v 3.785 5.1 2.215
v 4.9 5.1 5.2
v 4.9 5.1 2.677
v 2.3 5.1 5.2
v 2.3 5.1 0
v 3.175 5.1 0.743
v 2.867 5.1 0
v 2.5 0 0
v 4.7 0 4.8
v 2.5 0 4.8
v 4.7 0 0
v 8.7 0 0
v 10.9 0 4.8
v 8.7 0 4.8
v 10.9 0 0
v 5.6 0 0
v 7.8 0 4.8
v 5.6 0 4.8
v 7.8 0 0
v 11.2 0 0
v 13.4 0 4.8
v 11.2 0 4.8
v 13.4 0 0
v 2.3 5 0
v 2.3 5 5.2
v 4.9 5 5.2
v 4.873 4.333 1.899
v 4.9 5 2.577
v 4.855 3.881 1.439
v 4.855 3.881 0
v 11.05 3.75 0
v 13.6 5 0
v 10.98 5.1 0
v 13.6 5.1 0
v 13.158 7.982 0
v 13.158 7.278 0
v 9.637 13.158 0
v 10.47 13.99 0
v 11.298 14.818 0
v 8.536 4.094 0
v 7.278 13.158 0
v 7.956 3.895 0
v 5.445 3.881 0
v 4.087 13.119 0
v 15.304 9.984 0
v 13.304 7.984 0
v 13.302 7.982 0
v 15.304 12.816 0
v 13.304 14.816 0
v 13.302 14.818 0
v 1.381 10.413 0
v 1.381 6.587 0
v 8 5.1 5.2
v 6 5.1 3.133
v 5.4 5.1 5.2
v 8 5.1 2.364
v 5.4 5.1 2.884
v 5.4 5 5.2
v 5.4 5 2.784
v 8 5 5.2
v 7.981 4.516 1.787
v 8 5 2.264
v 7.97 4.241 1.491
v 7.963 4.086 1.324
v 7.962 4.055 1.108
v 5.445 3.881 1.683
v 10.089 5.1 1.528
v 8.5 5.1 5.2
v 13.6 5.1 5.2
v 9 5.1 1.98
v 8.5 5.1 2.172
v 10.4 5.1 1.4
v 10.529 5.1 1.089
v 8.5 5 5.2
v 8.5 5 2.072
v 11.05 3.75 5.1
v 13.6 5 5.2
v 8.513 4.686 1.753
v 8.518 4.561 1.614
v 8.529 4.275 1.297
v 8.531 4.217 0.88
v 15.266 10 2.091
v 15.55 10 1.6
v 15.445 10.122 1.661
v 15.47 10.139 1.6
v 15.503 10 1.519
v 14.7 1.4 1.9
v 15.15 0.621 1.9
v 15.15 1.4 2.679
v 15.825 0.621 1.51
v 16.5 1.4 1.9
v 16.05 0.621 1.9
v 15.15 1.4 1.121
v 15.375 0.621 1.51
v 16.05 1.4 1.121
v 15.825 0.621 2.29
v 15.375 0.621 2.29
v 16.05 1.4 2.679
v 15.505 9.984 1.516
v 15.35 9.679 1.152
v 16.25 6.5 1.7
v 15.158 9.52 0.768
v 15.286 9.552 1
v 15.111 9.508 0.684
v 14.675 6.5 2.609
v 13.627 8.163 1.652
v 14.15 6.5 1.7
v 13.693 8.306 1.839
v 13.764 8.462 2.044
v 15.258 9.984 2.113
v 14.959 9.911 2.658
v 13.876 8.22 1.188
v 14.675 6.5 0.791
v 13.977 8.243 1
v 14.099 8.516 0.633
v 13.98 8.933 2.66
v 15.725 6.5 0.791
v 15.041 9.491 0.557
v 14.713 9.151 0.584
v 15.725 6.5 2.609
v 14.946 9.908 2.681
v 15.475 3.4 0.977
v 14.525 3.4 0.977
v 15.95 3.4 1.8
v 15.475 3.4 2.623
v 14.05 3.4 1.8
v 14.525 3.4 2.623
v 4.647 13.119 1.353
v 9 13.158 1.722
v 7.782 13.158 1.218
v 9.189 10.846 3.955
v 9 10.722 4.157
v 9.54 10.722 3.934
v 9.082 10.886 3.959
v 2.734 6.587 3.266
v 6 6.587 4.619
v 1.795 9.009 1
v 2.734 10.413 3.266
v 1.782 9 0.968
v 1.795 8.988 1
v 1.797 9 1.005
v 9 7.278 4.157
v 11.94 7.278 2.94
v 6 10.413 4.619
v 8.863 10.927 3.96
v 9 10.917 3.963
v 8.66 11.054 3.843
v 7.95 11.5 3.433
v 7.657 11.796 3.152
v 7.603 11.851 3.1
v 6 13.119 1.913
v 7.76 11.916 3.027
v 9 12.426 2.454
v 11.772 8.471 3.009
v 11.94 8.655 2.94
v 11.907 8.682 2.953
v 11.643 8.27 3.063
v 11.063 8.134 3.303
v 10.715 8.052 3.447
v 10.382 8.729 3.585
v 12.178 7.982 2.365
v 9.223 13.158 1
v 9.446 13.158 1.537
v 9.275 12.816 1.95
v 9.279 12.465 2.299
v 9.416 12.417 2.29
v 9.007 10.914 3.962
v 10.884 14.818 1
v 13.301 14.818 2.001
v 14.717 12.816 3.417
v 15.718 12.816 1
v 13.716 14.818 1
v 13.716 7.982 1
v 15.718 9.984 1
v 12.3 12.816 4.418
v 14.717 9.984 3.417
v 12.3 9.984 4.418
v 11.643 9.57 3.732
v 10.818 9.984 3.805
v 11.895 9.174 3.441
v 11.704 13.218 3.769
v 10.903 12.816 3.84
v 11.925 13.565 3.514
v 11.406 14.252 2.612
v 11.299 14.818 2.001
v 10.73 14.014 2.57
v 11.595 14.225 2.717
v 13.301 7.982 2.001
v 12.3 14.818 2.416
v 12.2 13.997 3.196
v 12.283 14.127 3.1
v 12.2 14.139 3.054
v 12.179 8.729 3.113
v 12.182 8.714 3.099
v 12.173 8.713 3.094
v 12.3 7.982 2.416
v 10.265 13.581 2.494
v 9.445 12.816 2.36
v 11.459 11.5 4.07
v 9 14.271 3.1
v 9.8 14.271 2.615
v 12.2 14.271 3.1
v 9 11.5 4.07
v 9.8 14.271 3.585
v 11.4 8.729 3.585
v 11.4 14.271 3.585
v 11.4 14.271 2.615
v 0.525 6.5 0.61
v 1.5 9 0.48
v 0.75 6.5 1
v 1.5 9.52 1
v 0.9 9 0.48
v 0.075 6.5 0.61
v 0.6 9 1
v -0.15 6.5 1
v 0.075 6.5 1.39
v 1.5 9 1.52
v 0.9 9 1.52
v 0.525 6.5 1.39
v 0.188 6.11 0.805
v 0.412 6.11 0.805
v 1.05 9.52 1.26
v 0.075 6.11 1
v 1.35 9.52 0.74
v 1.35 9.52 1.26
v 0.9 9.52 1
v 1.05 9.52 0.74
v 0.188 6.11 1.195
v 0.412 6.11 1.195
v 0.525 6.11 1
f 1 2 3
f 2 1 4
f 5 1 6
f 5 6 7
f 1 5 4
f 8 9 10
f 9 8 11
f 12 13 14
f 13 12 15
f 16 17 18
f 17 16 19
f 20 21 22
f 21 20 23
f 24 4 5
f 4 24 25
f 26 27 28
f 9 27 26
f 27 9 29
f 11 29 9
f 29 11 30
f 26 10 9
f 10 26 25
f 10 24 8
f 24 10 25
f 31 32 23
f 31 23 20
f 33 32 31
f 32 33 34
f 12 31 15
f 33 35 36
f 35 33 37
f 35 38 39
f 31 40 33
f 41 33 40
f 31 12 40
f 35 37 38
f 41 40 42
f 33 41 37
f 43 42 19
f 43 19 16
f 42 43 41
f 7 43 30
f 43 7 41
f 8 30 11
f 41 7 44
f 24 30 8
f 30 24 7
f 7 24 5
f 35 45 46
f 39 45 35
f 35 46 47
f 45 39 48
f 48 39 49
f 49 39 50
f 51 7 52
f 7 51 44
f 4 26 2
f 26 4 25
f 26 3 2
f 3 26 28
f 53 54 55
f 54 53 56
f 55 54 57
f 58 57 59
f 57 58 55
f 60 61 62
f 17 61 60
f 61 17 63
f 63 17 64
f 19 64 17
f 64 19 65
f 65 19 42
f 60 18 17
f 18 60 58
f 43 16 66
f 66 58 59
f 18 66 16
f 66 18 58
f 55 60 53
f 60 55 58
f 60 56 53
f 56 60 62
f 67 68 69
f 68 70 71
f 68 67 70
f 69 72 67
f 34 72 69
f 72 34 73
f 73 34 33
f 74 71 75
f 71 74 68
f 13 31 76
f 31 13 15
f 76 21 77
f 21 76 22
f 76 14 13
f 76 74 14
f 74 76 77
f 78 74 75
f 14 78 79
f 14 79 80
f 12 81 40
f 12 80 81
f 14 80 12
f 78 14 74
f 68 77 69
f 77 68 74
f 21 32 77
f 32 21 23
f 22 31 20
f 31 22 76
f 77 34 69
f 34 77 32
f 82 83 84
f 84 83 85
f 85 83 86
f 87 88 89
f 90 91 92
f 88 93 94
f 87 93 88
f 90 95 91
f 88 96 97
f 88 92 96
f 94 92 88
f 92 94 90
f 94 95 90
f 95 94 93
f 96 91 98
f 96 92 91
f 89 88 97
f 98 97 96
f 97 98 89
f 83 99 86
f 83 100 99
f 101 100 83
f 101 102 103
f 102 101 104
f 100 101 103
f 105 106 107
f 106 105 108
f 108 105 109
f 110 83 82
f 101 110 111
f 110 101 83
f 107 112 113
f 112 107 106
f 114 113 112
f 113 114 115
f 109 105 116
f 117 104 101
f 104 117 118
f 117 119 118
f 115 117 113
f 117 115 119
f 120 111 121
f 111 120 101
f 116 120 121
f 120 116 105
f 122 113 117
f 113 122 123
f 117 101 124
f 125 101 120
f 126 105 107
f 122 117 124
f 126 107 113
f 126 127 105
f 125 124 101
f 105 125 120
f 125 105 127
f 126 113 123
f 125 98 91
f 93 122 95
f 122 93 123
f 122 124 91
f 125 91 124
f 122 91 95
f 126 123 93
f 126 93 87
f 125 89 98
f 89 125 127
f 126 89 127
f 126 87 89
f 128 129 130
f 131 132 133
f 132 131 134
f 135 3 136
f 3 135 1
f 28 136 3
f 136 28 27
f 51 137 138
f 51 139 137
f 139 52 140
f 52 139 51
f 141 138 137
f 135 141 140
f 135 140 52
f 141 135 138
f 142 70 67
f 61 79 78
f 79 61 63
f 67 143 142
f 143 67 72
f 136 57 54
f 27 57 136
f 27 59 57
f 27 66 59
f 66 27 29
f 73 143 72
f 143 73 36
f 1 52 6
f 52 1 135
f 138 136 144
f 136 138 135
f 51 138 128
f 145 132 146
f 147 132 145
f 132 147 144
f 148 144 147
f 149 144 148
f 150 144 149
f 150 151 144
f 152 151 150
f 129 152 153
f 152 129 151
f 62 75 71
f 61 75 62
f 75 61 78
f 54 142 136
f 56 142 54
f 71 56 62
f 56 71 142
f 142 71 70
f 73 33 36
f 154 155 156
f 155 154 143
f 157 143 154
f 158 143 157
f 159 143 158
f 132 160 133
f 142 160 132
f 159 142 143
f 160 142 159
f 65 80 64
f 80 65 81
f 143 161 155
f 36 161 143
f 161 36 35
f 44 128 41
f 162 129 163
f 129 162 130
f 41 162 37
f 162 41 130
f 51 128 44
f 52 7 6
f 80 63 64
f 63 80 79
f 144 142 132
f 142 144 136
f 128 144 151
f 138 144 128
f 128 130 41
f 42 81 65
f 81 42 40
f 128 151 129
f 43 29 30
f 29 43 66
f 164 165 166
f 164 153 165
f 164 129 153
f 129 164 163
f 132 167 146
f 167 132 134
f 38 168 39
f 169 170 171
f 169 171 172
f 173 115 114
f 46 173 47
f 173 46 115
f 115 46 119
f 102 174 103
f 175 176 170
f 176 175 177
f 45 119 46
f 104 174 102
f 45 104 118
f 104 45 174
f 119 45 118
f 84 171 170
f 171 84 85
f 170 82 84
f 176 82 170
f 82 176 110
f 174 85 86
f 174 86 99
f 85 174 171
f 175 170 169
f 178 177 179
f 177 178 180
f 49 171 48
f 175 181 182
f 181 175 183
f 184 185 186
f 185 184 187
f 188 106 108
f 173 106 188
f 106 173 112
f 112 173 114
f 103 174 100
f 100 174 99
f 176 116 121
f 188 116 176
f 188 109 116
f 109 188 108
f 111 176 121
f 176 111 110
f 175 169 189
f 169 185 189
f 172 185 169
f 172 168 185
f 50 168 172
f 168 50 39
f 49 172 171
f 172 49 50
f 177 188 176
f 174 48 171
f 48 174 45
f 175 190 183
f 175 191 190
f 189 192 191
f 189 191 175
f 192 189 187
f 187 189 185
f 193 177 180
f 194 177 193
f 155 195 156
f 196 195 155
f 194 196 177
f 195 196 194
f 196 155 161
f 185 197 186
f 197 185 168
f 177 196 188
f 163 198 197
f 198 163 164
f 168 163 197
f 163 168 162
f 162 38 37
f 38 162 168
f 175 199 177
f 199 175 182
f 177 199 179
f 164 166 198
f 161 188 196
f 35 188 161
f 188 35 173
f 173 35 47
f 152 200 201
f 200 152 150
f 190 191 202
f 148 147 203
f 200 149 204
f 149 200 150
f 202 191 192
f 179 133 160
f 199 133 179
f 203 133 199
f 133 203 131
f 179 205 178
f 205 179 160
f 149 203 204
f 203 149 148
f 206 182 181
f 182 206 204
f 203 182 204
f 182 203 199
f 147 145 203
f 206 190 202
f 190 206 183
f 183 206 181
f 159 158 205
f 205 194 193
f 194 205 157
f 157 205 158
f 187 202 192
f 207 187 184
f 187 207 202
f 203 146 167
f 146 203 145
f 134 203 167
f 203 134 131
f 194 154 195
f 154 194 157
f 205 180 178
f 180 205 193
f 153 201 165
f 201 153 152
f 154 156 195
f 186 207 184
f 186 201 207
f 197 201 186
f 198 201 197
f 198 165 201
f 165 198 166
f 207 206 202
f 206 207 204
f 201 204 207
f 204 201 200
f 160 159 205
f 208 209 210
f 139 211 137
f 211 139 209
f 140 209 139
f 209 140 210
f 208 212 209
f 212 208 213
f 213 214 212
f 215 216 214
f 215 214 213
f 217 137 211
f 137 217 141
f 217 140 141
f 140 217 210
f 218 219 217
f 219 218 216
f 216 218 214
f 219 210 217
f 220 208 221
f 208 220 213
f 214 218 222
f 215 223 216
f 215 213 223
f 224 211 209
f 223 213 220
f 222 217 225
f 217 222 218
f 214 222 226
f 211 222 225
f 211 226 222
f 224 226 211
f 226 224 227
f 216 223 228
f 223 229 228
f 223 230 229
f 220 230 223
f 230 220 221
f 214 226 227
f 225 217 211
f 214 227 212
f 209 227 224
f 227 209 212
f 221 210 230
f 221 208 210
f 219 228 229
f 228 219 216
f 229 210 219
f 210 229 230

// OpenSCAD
// Gold_Elephant.stl  -  Store Versile room frame (Rev C)
// Quantity: 1   Filament: Gold silk (e.g. PLA Silk+ Gold)
// Print: layer 0.12 mm, infill 20%, 2 walls, brim 0 mm, NO supports
// Orientation: back  (lying on its back, front face up)
// Notes: Flat back down.
// The library draws parts with their front toward +Y; mirror([0,1,0]) makes the real
// part face the viewer correctly (see build.py). Edit dimensions in versile_parts.scad.
use <../versile_parts.scad>

rotate([-90, 0, 0]) mirror([0, 1, 0]) gold_elephant();
